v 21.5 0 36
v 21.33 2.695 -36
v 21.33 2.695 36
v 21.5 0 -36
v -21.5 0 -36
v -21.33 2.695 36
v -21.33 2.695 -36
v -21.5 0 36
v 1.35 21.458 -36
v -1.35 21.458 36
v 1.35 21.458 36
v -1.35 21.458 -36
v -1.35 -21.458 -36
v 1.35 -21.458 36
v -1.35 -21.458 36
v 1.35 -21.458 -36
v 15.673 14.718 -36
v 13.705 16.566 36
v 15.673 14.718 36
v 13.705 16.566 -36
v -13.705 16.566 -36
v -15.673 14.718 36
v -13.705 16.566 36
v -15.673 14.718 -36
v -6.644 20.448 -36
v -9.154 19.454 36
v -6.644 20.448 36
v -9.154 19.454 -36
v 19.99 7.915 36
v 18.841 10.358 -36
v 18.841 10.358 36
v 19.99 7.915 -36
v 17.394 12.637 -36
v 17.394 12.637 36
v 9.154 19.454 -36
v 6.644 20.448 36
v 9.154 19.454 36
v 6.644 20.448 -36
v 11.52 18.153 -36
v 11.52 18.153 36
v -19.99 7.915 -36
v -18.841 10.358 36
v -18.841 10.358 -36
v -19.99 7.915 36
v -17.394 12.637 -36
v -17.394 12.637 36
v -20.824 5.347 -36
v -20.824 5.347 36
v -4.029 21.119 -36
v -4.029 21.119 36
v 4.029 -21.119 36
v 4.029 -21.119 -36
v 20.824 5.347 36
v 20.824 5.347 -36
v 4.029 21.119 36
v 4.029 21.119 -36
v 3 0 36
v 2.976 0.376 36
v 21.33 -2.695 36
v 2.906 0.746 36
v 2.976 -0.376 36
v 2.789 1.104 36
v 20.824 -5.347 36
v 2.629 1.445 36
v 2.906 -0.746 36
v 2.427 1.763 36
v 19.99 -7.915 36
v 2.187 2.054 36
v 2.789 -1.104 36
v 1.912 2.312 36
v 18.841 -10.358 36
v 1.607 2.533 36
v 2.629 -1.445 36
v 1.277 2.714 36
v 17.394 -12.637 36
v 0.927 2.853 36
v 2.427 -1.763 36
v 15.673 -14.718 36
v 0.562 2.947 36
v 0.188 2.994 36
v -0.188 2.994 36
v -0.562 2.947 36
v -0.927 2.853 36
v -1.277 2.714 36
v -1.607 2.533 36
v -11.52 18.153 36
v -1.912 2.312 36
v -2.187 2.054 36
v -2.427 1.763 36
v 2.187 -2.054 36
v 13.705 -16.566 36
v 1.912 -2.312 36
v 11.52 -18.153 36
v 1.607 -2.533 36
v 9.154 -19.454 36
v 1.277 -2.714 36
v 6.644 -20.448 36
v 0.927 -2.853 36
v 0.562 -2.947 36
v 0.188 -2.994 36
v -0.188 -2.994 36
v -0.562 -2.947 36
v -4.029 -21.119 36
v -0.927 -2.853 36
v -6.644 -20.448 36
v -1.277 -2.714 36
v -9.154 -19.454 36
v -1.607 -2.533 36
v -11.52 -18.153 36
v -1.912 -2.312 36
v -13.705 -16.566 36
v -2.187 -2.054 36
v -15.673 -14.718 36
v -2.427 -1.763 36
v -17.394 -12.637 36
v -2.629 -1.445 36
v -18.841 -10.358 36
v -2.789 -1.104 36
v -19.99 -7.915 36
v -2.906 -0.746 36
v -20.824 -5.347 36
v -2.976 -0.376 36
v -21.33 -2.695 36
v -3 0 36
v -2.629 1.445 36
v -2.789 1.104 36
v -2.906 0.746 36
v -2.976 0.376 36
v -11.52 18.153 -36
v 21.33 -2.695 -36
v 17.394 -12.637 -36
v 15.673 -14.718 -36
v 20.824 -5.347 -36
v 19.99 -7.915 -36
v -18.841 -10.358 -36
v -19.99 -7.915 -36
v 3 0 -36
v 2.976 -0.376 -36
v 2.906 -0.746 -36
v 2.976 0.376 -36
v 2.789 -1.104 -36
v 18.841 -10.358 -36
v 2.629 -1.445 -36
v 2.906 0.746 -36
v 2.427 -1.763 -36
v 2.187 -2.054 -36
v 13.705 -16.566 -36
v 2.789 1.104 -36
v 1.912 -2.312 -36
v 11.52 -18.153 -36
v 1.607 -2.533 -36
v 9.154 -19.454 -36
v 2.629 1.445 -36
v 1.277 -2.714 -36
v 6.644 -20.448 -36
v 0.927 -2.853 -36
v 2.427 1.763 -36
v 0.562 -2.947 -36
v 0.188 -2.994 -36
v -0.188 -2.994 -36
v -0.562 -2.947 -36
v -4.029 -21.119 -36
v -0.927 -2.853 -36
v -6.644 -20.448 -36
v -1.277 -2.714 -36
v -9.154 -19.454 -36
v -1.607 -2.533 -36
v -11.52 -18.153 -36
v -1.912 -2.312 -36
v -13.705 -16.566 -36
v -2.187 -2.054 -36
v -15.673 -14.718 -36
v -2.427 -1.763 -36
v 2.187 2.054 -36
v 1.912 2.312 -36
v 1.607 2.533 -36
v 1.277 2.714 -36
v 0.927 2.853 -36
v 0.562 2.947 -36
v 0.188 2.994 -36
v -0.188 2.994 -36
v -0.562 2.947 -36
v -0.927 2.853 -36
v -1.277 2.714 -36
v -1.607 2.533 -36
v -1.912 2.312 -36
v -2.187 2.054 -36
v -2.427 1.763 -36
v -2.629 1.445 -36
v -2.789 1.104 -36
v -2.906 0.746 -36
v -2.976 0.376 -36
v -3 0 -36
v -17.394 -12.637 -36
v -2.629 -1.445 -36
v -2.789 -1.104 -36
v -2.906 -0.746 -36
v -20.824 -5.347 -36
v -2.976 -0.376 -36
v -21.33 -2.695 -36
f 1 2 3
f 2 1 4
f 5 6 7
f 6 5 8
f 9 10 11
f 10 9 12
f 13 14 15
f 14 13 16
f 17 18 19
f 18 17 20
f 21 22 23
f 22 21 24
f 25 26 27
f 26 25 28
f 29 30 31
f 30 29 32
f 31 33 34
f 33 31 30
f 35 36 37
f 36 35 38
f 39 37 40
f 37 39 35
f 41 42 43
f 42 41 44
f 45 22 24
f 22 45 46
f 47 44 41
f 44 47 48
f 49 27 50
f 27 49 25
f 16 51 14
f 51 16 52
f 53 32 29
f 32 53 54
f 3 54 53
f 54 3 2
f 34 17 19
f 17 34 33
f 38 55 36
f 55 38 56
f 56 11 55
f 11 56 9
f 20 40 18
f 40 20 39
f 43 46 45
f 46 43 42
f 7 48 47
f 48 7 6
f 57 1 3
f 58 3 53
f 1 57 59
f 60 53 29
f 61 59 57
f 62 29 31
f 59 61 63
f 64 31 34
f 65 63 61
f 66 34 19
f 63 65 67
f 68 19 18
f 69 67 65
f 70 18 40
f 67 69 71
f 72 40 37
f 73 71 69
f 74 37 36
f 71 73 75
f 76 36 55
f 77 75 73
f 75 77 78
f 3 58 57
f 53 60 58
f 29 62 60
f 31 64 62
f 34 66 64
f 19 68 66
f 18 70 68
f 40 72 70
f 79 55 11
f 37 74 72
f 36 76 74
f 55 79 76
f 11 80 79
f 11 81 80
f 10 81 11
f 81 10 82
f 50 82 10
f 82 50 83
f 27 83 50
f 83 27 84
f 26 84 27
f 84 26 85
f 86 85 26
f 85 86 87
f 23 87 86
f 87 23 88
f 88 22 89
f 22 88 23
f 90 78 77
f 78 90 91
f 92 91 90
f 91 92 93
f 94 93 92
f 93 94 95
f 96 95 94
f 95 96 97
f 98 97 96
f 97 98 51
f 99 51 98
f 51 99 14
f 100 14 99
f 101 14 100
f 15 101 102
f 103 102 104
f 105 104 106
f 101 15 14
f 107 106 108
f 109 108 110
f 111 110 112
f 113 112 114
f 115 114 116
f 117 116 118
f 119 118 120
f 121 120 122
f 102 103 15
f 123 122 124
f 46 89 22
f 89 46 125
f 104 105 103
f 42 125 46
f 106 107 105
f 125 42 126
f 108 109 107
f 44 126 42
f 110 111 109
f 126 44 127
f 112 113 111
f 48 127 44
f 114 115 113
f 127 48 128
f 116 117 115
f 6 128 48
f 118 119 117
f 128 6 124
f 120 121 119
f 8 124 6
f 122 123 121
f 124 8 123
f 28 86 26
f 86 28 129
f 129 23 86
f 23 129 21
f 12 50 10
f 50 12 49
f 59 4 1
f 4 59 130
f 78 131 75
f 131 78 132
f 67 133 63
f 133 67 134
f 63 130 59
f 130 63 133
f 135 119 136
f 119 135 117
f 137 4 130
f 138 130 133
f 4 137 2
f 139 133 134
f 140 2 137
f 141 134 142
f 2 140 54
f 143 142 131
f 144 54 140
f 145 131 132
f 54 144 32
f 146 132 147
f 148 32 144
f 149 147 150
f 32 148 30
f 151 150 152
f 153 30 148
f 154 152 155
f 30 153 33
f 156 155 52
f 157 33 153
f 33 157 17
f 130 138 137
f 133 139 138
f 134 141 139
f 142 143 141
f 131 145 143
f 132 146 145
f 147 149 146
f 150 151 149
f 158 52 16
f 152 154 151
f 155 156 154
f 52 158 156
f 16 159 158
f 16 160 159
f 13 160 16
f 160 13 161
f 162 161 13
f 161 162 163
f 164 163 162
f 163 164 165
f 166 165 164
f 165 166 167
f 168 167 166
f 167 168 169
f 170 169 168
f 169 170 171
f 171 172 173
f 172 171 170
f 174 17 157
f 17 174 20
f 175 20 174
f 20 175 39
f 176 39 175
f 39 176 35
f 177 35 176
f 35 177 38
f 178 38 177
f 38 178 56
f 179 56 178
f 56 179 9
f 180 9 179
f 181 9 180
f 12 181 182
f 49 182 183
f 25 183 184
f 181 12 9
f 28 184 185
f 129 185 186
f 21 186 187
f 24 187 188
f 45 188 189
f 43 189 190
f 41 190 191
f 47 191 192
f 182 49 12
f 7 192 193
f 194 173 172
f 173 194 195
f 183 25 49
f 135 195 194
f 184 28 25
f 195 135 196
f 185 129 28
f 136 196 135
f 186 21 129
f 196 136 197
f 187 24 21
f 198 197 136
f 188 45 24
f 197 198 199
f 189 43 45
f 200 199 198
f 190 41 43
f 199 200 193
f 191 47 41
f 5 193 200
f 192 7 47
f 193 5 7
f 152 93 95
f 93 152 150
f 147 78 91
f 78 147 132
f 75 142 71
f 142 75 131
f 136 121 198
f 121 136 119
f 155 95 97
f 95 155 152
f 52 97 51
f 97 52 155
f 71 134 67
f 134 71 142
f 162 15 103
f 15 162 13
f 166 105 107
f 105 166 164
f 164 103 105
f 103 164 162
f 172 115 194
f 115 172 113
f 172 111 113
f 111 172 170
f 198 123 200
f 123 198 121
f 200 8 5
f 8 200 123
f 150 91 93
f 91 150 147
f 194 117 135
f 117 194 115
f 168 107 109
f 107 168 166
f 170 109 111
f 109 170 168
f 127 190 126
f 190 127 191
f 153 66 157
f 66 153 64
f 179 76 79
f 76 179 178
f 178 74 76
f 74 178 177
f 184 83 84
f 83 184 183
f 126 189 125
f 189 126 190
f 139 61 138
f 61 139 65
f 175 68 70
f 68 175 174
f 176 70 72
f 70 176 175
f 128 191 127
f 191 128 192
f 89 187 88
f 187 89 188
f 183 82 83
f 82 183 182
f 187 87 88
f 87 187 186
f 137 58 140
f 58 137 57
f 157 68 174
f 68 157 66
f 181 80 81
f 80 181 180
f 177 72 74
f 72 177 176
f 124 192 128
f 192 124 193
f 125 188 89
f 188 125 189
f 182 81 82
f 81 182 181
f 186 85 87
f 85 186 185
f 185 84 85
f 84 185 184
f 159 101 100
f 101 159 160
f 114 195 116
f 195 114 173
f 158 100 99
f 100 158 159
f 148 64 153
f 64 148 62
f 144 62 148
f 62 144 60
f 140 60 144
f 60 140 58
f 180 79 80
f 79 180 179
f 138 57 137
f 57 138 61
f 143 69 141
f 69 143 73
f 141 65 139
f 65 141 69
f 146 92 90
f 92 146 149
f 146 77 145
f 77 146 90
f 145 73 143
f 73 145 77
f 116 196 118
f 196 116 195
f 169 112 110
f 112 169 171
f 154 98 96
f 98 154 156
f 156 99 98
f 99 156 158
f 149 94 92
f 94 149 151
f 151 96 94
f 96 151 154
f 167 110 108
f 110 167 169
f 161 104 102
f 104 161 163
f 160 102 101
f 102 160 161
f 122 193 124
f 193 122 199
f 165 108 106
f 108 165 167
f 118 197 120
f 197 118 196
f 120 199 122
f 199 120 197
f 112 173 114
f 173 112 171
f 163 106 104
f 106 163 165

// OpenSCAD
$fn = 50;


difference() {
	union() {
		translate(v = [0, 0, -36.0000000000]) {
			cylinder(h = 72, r = 21.5000000000);
		}
	}
	union() {
		translate(v = [0, 0, -100.0000000000]) {
			cylinder(h = 200, r = 3);
		}
	}
}
